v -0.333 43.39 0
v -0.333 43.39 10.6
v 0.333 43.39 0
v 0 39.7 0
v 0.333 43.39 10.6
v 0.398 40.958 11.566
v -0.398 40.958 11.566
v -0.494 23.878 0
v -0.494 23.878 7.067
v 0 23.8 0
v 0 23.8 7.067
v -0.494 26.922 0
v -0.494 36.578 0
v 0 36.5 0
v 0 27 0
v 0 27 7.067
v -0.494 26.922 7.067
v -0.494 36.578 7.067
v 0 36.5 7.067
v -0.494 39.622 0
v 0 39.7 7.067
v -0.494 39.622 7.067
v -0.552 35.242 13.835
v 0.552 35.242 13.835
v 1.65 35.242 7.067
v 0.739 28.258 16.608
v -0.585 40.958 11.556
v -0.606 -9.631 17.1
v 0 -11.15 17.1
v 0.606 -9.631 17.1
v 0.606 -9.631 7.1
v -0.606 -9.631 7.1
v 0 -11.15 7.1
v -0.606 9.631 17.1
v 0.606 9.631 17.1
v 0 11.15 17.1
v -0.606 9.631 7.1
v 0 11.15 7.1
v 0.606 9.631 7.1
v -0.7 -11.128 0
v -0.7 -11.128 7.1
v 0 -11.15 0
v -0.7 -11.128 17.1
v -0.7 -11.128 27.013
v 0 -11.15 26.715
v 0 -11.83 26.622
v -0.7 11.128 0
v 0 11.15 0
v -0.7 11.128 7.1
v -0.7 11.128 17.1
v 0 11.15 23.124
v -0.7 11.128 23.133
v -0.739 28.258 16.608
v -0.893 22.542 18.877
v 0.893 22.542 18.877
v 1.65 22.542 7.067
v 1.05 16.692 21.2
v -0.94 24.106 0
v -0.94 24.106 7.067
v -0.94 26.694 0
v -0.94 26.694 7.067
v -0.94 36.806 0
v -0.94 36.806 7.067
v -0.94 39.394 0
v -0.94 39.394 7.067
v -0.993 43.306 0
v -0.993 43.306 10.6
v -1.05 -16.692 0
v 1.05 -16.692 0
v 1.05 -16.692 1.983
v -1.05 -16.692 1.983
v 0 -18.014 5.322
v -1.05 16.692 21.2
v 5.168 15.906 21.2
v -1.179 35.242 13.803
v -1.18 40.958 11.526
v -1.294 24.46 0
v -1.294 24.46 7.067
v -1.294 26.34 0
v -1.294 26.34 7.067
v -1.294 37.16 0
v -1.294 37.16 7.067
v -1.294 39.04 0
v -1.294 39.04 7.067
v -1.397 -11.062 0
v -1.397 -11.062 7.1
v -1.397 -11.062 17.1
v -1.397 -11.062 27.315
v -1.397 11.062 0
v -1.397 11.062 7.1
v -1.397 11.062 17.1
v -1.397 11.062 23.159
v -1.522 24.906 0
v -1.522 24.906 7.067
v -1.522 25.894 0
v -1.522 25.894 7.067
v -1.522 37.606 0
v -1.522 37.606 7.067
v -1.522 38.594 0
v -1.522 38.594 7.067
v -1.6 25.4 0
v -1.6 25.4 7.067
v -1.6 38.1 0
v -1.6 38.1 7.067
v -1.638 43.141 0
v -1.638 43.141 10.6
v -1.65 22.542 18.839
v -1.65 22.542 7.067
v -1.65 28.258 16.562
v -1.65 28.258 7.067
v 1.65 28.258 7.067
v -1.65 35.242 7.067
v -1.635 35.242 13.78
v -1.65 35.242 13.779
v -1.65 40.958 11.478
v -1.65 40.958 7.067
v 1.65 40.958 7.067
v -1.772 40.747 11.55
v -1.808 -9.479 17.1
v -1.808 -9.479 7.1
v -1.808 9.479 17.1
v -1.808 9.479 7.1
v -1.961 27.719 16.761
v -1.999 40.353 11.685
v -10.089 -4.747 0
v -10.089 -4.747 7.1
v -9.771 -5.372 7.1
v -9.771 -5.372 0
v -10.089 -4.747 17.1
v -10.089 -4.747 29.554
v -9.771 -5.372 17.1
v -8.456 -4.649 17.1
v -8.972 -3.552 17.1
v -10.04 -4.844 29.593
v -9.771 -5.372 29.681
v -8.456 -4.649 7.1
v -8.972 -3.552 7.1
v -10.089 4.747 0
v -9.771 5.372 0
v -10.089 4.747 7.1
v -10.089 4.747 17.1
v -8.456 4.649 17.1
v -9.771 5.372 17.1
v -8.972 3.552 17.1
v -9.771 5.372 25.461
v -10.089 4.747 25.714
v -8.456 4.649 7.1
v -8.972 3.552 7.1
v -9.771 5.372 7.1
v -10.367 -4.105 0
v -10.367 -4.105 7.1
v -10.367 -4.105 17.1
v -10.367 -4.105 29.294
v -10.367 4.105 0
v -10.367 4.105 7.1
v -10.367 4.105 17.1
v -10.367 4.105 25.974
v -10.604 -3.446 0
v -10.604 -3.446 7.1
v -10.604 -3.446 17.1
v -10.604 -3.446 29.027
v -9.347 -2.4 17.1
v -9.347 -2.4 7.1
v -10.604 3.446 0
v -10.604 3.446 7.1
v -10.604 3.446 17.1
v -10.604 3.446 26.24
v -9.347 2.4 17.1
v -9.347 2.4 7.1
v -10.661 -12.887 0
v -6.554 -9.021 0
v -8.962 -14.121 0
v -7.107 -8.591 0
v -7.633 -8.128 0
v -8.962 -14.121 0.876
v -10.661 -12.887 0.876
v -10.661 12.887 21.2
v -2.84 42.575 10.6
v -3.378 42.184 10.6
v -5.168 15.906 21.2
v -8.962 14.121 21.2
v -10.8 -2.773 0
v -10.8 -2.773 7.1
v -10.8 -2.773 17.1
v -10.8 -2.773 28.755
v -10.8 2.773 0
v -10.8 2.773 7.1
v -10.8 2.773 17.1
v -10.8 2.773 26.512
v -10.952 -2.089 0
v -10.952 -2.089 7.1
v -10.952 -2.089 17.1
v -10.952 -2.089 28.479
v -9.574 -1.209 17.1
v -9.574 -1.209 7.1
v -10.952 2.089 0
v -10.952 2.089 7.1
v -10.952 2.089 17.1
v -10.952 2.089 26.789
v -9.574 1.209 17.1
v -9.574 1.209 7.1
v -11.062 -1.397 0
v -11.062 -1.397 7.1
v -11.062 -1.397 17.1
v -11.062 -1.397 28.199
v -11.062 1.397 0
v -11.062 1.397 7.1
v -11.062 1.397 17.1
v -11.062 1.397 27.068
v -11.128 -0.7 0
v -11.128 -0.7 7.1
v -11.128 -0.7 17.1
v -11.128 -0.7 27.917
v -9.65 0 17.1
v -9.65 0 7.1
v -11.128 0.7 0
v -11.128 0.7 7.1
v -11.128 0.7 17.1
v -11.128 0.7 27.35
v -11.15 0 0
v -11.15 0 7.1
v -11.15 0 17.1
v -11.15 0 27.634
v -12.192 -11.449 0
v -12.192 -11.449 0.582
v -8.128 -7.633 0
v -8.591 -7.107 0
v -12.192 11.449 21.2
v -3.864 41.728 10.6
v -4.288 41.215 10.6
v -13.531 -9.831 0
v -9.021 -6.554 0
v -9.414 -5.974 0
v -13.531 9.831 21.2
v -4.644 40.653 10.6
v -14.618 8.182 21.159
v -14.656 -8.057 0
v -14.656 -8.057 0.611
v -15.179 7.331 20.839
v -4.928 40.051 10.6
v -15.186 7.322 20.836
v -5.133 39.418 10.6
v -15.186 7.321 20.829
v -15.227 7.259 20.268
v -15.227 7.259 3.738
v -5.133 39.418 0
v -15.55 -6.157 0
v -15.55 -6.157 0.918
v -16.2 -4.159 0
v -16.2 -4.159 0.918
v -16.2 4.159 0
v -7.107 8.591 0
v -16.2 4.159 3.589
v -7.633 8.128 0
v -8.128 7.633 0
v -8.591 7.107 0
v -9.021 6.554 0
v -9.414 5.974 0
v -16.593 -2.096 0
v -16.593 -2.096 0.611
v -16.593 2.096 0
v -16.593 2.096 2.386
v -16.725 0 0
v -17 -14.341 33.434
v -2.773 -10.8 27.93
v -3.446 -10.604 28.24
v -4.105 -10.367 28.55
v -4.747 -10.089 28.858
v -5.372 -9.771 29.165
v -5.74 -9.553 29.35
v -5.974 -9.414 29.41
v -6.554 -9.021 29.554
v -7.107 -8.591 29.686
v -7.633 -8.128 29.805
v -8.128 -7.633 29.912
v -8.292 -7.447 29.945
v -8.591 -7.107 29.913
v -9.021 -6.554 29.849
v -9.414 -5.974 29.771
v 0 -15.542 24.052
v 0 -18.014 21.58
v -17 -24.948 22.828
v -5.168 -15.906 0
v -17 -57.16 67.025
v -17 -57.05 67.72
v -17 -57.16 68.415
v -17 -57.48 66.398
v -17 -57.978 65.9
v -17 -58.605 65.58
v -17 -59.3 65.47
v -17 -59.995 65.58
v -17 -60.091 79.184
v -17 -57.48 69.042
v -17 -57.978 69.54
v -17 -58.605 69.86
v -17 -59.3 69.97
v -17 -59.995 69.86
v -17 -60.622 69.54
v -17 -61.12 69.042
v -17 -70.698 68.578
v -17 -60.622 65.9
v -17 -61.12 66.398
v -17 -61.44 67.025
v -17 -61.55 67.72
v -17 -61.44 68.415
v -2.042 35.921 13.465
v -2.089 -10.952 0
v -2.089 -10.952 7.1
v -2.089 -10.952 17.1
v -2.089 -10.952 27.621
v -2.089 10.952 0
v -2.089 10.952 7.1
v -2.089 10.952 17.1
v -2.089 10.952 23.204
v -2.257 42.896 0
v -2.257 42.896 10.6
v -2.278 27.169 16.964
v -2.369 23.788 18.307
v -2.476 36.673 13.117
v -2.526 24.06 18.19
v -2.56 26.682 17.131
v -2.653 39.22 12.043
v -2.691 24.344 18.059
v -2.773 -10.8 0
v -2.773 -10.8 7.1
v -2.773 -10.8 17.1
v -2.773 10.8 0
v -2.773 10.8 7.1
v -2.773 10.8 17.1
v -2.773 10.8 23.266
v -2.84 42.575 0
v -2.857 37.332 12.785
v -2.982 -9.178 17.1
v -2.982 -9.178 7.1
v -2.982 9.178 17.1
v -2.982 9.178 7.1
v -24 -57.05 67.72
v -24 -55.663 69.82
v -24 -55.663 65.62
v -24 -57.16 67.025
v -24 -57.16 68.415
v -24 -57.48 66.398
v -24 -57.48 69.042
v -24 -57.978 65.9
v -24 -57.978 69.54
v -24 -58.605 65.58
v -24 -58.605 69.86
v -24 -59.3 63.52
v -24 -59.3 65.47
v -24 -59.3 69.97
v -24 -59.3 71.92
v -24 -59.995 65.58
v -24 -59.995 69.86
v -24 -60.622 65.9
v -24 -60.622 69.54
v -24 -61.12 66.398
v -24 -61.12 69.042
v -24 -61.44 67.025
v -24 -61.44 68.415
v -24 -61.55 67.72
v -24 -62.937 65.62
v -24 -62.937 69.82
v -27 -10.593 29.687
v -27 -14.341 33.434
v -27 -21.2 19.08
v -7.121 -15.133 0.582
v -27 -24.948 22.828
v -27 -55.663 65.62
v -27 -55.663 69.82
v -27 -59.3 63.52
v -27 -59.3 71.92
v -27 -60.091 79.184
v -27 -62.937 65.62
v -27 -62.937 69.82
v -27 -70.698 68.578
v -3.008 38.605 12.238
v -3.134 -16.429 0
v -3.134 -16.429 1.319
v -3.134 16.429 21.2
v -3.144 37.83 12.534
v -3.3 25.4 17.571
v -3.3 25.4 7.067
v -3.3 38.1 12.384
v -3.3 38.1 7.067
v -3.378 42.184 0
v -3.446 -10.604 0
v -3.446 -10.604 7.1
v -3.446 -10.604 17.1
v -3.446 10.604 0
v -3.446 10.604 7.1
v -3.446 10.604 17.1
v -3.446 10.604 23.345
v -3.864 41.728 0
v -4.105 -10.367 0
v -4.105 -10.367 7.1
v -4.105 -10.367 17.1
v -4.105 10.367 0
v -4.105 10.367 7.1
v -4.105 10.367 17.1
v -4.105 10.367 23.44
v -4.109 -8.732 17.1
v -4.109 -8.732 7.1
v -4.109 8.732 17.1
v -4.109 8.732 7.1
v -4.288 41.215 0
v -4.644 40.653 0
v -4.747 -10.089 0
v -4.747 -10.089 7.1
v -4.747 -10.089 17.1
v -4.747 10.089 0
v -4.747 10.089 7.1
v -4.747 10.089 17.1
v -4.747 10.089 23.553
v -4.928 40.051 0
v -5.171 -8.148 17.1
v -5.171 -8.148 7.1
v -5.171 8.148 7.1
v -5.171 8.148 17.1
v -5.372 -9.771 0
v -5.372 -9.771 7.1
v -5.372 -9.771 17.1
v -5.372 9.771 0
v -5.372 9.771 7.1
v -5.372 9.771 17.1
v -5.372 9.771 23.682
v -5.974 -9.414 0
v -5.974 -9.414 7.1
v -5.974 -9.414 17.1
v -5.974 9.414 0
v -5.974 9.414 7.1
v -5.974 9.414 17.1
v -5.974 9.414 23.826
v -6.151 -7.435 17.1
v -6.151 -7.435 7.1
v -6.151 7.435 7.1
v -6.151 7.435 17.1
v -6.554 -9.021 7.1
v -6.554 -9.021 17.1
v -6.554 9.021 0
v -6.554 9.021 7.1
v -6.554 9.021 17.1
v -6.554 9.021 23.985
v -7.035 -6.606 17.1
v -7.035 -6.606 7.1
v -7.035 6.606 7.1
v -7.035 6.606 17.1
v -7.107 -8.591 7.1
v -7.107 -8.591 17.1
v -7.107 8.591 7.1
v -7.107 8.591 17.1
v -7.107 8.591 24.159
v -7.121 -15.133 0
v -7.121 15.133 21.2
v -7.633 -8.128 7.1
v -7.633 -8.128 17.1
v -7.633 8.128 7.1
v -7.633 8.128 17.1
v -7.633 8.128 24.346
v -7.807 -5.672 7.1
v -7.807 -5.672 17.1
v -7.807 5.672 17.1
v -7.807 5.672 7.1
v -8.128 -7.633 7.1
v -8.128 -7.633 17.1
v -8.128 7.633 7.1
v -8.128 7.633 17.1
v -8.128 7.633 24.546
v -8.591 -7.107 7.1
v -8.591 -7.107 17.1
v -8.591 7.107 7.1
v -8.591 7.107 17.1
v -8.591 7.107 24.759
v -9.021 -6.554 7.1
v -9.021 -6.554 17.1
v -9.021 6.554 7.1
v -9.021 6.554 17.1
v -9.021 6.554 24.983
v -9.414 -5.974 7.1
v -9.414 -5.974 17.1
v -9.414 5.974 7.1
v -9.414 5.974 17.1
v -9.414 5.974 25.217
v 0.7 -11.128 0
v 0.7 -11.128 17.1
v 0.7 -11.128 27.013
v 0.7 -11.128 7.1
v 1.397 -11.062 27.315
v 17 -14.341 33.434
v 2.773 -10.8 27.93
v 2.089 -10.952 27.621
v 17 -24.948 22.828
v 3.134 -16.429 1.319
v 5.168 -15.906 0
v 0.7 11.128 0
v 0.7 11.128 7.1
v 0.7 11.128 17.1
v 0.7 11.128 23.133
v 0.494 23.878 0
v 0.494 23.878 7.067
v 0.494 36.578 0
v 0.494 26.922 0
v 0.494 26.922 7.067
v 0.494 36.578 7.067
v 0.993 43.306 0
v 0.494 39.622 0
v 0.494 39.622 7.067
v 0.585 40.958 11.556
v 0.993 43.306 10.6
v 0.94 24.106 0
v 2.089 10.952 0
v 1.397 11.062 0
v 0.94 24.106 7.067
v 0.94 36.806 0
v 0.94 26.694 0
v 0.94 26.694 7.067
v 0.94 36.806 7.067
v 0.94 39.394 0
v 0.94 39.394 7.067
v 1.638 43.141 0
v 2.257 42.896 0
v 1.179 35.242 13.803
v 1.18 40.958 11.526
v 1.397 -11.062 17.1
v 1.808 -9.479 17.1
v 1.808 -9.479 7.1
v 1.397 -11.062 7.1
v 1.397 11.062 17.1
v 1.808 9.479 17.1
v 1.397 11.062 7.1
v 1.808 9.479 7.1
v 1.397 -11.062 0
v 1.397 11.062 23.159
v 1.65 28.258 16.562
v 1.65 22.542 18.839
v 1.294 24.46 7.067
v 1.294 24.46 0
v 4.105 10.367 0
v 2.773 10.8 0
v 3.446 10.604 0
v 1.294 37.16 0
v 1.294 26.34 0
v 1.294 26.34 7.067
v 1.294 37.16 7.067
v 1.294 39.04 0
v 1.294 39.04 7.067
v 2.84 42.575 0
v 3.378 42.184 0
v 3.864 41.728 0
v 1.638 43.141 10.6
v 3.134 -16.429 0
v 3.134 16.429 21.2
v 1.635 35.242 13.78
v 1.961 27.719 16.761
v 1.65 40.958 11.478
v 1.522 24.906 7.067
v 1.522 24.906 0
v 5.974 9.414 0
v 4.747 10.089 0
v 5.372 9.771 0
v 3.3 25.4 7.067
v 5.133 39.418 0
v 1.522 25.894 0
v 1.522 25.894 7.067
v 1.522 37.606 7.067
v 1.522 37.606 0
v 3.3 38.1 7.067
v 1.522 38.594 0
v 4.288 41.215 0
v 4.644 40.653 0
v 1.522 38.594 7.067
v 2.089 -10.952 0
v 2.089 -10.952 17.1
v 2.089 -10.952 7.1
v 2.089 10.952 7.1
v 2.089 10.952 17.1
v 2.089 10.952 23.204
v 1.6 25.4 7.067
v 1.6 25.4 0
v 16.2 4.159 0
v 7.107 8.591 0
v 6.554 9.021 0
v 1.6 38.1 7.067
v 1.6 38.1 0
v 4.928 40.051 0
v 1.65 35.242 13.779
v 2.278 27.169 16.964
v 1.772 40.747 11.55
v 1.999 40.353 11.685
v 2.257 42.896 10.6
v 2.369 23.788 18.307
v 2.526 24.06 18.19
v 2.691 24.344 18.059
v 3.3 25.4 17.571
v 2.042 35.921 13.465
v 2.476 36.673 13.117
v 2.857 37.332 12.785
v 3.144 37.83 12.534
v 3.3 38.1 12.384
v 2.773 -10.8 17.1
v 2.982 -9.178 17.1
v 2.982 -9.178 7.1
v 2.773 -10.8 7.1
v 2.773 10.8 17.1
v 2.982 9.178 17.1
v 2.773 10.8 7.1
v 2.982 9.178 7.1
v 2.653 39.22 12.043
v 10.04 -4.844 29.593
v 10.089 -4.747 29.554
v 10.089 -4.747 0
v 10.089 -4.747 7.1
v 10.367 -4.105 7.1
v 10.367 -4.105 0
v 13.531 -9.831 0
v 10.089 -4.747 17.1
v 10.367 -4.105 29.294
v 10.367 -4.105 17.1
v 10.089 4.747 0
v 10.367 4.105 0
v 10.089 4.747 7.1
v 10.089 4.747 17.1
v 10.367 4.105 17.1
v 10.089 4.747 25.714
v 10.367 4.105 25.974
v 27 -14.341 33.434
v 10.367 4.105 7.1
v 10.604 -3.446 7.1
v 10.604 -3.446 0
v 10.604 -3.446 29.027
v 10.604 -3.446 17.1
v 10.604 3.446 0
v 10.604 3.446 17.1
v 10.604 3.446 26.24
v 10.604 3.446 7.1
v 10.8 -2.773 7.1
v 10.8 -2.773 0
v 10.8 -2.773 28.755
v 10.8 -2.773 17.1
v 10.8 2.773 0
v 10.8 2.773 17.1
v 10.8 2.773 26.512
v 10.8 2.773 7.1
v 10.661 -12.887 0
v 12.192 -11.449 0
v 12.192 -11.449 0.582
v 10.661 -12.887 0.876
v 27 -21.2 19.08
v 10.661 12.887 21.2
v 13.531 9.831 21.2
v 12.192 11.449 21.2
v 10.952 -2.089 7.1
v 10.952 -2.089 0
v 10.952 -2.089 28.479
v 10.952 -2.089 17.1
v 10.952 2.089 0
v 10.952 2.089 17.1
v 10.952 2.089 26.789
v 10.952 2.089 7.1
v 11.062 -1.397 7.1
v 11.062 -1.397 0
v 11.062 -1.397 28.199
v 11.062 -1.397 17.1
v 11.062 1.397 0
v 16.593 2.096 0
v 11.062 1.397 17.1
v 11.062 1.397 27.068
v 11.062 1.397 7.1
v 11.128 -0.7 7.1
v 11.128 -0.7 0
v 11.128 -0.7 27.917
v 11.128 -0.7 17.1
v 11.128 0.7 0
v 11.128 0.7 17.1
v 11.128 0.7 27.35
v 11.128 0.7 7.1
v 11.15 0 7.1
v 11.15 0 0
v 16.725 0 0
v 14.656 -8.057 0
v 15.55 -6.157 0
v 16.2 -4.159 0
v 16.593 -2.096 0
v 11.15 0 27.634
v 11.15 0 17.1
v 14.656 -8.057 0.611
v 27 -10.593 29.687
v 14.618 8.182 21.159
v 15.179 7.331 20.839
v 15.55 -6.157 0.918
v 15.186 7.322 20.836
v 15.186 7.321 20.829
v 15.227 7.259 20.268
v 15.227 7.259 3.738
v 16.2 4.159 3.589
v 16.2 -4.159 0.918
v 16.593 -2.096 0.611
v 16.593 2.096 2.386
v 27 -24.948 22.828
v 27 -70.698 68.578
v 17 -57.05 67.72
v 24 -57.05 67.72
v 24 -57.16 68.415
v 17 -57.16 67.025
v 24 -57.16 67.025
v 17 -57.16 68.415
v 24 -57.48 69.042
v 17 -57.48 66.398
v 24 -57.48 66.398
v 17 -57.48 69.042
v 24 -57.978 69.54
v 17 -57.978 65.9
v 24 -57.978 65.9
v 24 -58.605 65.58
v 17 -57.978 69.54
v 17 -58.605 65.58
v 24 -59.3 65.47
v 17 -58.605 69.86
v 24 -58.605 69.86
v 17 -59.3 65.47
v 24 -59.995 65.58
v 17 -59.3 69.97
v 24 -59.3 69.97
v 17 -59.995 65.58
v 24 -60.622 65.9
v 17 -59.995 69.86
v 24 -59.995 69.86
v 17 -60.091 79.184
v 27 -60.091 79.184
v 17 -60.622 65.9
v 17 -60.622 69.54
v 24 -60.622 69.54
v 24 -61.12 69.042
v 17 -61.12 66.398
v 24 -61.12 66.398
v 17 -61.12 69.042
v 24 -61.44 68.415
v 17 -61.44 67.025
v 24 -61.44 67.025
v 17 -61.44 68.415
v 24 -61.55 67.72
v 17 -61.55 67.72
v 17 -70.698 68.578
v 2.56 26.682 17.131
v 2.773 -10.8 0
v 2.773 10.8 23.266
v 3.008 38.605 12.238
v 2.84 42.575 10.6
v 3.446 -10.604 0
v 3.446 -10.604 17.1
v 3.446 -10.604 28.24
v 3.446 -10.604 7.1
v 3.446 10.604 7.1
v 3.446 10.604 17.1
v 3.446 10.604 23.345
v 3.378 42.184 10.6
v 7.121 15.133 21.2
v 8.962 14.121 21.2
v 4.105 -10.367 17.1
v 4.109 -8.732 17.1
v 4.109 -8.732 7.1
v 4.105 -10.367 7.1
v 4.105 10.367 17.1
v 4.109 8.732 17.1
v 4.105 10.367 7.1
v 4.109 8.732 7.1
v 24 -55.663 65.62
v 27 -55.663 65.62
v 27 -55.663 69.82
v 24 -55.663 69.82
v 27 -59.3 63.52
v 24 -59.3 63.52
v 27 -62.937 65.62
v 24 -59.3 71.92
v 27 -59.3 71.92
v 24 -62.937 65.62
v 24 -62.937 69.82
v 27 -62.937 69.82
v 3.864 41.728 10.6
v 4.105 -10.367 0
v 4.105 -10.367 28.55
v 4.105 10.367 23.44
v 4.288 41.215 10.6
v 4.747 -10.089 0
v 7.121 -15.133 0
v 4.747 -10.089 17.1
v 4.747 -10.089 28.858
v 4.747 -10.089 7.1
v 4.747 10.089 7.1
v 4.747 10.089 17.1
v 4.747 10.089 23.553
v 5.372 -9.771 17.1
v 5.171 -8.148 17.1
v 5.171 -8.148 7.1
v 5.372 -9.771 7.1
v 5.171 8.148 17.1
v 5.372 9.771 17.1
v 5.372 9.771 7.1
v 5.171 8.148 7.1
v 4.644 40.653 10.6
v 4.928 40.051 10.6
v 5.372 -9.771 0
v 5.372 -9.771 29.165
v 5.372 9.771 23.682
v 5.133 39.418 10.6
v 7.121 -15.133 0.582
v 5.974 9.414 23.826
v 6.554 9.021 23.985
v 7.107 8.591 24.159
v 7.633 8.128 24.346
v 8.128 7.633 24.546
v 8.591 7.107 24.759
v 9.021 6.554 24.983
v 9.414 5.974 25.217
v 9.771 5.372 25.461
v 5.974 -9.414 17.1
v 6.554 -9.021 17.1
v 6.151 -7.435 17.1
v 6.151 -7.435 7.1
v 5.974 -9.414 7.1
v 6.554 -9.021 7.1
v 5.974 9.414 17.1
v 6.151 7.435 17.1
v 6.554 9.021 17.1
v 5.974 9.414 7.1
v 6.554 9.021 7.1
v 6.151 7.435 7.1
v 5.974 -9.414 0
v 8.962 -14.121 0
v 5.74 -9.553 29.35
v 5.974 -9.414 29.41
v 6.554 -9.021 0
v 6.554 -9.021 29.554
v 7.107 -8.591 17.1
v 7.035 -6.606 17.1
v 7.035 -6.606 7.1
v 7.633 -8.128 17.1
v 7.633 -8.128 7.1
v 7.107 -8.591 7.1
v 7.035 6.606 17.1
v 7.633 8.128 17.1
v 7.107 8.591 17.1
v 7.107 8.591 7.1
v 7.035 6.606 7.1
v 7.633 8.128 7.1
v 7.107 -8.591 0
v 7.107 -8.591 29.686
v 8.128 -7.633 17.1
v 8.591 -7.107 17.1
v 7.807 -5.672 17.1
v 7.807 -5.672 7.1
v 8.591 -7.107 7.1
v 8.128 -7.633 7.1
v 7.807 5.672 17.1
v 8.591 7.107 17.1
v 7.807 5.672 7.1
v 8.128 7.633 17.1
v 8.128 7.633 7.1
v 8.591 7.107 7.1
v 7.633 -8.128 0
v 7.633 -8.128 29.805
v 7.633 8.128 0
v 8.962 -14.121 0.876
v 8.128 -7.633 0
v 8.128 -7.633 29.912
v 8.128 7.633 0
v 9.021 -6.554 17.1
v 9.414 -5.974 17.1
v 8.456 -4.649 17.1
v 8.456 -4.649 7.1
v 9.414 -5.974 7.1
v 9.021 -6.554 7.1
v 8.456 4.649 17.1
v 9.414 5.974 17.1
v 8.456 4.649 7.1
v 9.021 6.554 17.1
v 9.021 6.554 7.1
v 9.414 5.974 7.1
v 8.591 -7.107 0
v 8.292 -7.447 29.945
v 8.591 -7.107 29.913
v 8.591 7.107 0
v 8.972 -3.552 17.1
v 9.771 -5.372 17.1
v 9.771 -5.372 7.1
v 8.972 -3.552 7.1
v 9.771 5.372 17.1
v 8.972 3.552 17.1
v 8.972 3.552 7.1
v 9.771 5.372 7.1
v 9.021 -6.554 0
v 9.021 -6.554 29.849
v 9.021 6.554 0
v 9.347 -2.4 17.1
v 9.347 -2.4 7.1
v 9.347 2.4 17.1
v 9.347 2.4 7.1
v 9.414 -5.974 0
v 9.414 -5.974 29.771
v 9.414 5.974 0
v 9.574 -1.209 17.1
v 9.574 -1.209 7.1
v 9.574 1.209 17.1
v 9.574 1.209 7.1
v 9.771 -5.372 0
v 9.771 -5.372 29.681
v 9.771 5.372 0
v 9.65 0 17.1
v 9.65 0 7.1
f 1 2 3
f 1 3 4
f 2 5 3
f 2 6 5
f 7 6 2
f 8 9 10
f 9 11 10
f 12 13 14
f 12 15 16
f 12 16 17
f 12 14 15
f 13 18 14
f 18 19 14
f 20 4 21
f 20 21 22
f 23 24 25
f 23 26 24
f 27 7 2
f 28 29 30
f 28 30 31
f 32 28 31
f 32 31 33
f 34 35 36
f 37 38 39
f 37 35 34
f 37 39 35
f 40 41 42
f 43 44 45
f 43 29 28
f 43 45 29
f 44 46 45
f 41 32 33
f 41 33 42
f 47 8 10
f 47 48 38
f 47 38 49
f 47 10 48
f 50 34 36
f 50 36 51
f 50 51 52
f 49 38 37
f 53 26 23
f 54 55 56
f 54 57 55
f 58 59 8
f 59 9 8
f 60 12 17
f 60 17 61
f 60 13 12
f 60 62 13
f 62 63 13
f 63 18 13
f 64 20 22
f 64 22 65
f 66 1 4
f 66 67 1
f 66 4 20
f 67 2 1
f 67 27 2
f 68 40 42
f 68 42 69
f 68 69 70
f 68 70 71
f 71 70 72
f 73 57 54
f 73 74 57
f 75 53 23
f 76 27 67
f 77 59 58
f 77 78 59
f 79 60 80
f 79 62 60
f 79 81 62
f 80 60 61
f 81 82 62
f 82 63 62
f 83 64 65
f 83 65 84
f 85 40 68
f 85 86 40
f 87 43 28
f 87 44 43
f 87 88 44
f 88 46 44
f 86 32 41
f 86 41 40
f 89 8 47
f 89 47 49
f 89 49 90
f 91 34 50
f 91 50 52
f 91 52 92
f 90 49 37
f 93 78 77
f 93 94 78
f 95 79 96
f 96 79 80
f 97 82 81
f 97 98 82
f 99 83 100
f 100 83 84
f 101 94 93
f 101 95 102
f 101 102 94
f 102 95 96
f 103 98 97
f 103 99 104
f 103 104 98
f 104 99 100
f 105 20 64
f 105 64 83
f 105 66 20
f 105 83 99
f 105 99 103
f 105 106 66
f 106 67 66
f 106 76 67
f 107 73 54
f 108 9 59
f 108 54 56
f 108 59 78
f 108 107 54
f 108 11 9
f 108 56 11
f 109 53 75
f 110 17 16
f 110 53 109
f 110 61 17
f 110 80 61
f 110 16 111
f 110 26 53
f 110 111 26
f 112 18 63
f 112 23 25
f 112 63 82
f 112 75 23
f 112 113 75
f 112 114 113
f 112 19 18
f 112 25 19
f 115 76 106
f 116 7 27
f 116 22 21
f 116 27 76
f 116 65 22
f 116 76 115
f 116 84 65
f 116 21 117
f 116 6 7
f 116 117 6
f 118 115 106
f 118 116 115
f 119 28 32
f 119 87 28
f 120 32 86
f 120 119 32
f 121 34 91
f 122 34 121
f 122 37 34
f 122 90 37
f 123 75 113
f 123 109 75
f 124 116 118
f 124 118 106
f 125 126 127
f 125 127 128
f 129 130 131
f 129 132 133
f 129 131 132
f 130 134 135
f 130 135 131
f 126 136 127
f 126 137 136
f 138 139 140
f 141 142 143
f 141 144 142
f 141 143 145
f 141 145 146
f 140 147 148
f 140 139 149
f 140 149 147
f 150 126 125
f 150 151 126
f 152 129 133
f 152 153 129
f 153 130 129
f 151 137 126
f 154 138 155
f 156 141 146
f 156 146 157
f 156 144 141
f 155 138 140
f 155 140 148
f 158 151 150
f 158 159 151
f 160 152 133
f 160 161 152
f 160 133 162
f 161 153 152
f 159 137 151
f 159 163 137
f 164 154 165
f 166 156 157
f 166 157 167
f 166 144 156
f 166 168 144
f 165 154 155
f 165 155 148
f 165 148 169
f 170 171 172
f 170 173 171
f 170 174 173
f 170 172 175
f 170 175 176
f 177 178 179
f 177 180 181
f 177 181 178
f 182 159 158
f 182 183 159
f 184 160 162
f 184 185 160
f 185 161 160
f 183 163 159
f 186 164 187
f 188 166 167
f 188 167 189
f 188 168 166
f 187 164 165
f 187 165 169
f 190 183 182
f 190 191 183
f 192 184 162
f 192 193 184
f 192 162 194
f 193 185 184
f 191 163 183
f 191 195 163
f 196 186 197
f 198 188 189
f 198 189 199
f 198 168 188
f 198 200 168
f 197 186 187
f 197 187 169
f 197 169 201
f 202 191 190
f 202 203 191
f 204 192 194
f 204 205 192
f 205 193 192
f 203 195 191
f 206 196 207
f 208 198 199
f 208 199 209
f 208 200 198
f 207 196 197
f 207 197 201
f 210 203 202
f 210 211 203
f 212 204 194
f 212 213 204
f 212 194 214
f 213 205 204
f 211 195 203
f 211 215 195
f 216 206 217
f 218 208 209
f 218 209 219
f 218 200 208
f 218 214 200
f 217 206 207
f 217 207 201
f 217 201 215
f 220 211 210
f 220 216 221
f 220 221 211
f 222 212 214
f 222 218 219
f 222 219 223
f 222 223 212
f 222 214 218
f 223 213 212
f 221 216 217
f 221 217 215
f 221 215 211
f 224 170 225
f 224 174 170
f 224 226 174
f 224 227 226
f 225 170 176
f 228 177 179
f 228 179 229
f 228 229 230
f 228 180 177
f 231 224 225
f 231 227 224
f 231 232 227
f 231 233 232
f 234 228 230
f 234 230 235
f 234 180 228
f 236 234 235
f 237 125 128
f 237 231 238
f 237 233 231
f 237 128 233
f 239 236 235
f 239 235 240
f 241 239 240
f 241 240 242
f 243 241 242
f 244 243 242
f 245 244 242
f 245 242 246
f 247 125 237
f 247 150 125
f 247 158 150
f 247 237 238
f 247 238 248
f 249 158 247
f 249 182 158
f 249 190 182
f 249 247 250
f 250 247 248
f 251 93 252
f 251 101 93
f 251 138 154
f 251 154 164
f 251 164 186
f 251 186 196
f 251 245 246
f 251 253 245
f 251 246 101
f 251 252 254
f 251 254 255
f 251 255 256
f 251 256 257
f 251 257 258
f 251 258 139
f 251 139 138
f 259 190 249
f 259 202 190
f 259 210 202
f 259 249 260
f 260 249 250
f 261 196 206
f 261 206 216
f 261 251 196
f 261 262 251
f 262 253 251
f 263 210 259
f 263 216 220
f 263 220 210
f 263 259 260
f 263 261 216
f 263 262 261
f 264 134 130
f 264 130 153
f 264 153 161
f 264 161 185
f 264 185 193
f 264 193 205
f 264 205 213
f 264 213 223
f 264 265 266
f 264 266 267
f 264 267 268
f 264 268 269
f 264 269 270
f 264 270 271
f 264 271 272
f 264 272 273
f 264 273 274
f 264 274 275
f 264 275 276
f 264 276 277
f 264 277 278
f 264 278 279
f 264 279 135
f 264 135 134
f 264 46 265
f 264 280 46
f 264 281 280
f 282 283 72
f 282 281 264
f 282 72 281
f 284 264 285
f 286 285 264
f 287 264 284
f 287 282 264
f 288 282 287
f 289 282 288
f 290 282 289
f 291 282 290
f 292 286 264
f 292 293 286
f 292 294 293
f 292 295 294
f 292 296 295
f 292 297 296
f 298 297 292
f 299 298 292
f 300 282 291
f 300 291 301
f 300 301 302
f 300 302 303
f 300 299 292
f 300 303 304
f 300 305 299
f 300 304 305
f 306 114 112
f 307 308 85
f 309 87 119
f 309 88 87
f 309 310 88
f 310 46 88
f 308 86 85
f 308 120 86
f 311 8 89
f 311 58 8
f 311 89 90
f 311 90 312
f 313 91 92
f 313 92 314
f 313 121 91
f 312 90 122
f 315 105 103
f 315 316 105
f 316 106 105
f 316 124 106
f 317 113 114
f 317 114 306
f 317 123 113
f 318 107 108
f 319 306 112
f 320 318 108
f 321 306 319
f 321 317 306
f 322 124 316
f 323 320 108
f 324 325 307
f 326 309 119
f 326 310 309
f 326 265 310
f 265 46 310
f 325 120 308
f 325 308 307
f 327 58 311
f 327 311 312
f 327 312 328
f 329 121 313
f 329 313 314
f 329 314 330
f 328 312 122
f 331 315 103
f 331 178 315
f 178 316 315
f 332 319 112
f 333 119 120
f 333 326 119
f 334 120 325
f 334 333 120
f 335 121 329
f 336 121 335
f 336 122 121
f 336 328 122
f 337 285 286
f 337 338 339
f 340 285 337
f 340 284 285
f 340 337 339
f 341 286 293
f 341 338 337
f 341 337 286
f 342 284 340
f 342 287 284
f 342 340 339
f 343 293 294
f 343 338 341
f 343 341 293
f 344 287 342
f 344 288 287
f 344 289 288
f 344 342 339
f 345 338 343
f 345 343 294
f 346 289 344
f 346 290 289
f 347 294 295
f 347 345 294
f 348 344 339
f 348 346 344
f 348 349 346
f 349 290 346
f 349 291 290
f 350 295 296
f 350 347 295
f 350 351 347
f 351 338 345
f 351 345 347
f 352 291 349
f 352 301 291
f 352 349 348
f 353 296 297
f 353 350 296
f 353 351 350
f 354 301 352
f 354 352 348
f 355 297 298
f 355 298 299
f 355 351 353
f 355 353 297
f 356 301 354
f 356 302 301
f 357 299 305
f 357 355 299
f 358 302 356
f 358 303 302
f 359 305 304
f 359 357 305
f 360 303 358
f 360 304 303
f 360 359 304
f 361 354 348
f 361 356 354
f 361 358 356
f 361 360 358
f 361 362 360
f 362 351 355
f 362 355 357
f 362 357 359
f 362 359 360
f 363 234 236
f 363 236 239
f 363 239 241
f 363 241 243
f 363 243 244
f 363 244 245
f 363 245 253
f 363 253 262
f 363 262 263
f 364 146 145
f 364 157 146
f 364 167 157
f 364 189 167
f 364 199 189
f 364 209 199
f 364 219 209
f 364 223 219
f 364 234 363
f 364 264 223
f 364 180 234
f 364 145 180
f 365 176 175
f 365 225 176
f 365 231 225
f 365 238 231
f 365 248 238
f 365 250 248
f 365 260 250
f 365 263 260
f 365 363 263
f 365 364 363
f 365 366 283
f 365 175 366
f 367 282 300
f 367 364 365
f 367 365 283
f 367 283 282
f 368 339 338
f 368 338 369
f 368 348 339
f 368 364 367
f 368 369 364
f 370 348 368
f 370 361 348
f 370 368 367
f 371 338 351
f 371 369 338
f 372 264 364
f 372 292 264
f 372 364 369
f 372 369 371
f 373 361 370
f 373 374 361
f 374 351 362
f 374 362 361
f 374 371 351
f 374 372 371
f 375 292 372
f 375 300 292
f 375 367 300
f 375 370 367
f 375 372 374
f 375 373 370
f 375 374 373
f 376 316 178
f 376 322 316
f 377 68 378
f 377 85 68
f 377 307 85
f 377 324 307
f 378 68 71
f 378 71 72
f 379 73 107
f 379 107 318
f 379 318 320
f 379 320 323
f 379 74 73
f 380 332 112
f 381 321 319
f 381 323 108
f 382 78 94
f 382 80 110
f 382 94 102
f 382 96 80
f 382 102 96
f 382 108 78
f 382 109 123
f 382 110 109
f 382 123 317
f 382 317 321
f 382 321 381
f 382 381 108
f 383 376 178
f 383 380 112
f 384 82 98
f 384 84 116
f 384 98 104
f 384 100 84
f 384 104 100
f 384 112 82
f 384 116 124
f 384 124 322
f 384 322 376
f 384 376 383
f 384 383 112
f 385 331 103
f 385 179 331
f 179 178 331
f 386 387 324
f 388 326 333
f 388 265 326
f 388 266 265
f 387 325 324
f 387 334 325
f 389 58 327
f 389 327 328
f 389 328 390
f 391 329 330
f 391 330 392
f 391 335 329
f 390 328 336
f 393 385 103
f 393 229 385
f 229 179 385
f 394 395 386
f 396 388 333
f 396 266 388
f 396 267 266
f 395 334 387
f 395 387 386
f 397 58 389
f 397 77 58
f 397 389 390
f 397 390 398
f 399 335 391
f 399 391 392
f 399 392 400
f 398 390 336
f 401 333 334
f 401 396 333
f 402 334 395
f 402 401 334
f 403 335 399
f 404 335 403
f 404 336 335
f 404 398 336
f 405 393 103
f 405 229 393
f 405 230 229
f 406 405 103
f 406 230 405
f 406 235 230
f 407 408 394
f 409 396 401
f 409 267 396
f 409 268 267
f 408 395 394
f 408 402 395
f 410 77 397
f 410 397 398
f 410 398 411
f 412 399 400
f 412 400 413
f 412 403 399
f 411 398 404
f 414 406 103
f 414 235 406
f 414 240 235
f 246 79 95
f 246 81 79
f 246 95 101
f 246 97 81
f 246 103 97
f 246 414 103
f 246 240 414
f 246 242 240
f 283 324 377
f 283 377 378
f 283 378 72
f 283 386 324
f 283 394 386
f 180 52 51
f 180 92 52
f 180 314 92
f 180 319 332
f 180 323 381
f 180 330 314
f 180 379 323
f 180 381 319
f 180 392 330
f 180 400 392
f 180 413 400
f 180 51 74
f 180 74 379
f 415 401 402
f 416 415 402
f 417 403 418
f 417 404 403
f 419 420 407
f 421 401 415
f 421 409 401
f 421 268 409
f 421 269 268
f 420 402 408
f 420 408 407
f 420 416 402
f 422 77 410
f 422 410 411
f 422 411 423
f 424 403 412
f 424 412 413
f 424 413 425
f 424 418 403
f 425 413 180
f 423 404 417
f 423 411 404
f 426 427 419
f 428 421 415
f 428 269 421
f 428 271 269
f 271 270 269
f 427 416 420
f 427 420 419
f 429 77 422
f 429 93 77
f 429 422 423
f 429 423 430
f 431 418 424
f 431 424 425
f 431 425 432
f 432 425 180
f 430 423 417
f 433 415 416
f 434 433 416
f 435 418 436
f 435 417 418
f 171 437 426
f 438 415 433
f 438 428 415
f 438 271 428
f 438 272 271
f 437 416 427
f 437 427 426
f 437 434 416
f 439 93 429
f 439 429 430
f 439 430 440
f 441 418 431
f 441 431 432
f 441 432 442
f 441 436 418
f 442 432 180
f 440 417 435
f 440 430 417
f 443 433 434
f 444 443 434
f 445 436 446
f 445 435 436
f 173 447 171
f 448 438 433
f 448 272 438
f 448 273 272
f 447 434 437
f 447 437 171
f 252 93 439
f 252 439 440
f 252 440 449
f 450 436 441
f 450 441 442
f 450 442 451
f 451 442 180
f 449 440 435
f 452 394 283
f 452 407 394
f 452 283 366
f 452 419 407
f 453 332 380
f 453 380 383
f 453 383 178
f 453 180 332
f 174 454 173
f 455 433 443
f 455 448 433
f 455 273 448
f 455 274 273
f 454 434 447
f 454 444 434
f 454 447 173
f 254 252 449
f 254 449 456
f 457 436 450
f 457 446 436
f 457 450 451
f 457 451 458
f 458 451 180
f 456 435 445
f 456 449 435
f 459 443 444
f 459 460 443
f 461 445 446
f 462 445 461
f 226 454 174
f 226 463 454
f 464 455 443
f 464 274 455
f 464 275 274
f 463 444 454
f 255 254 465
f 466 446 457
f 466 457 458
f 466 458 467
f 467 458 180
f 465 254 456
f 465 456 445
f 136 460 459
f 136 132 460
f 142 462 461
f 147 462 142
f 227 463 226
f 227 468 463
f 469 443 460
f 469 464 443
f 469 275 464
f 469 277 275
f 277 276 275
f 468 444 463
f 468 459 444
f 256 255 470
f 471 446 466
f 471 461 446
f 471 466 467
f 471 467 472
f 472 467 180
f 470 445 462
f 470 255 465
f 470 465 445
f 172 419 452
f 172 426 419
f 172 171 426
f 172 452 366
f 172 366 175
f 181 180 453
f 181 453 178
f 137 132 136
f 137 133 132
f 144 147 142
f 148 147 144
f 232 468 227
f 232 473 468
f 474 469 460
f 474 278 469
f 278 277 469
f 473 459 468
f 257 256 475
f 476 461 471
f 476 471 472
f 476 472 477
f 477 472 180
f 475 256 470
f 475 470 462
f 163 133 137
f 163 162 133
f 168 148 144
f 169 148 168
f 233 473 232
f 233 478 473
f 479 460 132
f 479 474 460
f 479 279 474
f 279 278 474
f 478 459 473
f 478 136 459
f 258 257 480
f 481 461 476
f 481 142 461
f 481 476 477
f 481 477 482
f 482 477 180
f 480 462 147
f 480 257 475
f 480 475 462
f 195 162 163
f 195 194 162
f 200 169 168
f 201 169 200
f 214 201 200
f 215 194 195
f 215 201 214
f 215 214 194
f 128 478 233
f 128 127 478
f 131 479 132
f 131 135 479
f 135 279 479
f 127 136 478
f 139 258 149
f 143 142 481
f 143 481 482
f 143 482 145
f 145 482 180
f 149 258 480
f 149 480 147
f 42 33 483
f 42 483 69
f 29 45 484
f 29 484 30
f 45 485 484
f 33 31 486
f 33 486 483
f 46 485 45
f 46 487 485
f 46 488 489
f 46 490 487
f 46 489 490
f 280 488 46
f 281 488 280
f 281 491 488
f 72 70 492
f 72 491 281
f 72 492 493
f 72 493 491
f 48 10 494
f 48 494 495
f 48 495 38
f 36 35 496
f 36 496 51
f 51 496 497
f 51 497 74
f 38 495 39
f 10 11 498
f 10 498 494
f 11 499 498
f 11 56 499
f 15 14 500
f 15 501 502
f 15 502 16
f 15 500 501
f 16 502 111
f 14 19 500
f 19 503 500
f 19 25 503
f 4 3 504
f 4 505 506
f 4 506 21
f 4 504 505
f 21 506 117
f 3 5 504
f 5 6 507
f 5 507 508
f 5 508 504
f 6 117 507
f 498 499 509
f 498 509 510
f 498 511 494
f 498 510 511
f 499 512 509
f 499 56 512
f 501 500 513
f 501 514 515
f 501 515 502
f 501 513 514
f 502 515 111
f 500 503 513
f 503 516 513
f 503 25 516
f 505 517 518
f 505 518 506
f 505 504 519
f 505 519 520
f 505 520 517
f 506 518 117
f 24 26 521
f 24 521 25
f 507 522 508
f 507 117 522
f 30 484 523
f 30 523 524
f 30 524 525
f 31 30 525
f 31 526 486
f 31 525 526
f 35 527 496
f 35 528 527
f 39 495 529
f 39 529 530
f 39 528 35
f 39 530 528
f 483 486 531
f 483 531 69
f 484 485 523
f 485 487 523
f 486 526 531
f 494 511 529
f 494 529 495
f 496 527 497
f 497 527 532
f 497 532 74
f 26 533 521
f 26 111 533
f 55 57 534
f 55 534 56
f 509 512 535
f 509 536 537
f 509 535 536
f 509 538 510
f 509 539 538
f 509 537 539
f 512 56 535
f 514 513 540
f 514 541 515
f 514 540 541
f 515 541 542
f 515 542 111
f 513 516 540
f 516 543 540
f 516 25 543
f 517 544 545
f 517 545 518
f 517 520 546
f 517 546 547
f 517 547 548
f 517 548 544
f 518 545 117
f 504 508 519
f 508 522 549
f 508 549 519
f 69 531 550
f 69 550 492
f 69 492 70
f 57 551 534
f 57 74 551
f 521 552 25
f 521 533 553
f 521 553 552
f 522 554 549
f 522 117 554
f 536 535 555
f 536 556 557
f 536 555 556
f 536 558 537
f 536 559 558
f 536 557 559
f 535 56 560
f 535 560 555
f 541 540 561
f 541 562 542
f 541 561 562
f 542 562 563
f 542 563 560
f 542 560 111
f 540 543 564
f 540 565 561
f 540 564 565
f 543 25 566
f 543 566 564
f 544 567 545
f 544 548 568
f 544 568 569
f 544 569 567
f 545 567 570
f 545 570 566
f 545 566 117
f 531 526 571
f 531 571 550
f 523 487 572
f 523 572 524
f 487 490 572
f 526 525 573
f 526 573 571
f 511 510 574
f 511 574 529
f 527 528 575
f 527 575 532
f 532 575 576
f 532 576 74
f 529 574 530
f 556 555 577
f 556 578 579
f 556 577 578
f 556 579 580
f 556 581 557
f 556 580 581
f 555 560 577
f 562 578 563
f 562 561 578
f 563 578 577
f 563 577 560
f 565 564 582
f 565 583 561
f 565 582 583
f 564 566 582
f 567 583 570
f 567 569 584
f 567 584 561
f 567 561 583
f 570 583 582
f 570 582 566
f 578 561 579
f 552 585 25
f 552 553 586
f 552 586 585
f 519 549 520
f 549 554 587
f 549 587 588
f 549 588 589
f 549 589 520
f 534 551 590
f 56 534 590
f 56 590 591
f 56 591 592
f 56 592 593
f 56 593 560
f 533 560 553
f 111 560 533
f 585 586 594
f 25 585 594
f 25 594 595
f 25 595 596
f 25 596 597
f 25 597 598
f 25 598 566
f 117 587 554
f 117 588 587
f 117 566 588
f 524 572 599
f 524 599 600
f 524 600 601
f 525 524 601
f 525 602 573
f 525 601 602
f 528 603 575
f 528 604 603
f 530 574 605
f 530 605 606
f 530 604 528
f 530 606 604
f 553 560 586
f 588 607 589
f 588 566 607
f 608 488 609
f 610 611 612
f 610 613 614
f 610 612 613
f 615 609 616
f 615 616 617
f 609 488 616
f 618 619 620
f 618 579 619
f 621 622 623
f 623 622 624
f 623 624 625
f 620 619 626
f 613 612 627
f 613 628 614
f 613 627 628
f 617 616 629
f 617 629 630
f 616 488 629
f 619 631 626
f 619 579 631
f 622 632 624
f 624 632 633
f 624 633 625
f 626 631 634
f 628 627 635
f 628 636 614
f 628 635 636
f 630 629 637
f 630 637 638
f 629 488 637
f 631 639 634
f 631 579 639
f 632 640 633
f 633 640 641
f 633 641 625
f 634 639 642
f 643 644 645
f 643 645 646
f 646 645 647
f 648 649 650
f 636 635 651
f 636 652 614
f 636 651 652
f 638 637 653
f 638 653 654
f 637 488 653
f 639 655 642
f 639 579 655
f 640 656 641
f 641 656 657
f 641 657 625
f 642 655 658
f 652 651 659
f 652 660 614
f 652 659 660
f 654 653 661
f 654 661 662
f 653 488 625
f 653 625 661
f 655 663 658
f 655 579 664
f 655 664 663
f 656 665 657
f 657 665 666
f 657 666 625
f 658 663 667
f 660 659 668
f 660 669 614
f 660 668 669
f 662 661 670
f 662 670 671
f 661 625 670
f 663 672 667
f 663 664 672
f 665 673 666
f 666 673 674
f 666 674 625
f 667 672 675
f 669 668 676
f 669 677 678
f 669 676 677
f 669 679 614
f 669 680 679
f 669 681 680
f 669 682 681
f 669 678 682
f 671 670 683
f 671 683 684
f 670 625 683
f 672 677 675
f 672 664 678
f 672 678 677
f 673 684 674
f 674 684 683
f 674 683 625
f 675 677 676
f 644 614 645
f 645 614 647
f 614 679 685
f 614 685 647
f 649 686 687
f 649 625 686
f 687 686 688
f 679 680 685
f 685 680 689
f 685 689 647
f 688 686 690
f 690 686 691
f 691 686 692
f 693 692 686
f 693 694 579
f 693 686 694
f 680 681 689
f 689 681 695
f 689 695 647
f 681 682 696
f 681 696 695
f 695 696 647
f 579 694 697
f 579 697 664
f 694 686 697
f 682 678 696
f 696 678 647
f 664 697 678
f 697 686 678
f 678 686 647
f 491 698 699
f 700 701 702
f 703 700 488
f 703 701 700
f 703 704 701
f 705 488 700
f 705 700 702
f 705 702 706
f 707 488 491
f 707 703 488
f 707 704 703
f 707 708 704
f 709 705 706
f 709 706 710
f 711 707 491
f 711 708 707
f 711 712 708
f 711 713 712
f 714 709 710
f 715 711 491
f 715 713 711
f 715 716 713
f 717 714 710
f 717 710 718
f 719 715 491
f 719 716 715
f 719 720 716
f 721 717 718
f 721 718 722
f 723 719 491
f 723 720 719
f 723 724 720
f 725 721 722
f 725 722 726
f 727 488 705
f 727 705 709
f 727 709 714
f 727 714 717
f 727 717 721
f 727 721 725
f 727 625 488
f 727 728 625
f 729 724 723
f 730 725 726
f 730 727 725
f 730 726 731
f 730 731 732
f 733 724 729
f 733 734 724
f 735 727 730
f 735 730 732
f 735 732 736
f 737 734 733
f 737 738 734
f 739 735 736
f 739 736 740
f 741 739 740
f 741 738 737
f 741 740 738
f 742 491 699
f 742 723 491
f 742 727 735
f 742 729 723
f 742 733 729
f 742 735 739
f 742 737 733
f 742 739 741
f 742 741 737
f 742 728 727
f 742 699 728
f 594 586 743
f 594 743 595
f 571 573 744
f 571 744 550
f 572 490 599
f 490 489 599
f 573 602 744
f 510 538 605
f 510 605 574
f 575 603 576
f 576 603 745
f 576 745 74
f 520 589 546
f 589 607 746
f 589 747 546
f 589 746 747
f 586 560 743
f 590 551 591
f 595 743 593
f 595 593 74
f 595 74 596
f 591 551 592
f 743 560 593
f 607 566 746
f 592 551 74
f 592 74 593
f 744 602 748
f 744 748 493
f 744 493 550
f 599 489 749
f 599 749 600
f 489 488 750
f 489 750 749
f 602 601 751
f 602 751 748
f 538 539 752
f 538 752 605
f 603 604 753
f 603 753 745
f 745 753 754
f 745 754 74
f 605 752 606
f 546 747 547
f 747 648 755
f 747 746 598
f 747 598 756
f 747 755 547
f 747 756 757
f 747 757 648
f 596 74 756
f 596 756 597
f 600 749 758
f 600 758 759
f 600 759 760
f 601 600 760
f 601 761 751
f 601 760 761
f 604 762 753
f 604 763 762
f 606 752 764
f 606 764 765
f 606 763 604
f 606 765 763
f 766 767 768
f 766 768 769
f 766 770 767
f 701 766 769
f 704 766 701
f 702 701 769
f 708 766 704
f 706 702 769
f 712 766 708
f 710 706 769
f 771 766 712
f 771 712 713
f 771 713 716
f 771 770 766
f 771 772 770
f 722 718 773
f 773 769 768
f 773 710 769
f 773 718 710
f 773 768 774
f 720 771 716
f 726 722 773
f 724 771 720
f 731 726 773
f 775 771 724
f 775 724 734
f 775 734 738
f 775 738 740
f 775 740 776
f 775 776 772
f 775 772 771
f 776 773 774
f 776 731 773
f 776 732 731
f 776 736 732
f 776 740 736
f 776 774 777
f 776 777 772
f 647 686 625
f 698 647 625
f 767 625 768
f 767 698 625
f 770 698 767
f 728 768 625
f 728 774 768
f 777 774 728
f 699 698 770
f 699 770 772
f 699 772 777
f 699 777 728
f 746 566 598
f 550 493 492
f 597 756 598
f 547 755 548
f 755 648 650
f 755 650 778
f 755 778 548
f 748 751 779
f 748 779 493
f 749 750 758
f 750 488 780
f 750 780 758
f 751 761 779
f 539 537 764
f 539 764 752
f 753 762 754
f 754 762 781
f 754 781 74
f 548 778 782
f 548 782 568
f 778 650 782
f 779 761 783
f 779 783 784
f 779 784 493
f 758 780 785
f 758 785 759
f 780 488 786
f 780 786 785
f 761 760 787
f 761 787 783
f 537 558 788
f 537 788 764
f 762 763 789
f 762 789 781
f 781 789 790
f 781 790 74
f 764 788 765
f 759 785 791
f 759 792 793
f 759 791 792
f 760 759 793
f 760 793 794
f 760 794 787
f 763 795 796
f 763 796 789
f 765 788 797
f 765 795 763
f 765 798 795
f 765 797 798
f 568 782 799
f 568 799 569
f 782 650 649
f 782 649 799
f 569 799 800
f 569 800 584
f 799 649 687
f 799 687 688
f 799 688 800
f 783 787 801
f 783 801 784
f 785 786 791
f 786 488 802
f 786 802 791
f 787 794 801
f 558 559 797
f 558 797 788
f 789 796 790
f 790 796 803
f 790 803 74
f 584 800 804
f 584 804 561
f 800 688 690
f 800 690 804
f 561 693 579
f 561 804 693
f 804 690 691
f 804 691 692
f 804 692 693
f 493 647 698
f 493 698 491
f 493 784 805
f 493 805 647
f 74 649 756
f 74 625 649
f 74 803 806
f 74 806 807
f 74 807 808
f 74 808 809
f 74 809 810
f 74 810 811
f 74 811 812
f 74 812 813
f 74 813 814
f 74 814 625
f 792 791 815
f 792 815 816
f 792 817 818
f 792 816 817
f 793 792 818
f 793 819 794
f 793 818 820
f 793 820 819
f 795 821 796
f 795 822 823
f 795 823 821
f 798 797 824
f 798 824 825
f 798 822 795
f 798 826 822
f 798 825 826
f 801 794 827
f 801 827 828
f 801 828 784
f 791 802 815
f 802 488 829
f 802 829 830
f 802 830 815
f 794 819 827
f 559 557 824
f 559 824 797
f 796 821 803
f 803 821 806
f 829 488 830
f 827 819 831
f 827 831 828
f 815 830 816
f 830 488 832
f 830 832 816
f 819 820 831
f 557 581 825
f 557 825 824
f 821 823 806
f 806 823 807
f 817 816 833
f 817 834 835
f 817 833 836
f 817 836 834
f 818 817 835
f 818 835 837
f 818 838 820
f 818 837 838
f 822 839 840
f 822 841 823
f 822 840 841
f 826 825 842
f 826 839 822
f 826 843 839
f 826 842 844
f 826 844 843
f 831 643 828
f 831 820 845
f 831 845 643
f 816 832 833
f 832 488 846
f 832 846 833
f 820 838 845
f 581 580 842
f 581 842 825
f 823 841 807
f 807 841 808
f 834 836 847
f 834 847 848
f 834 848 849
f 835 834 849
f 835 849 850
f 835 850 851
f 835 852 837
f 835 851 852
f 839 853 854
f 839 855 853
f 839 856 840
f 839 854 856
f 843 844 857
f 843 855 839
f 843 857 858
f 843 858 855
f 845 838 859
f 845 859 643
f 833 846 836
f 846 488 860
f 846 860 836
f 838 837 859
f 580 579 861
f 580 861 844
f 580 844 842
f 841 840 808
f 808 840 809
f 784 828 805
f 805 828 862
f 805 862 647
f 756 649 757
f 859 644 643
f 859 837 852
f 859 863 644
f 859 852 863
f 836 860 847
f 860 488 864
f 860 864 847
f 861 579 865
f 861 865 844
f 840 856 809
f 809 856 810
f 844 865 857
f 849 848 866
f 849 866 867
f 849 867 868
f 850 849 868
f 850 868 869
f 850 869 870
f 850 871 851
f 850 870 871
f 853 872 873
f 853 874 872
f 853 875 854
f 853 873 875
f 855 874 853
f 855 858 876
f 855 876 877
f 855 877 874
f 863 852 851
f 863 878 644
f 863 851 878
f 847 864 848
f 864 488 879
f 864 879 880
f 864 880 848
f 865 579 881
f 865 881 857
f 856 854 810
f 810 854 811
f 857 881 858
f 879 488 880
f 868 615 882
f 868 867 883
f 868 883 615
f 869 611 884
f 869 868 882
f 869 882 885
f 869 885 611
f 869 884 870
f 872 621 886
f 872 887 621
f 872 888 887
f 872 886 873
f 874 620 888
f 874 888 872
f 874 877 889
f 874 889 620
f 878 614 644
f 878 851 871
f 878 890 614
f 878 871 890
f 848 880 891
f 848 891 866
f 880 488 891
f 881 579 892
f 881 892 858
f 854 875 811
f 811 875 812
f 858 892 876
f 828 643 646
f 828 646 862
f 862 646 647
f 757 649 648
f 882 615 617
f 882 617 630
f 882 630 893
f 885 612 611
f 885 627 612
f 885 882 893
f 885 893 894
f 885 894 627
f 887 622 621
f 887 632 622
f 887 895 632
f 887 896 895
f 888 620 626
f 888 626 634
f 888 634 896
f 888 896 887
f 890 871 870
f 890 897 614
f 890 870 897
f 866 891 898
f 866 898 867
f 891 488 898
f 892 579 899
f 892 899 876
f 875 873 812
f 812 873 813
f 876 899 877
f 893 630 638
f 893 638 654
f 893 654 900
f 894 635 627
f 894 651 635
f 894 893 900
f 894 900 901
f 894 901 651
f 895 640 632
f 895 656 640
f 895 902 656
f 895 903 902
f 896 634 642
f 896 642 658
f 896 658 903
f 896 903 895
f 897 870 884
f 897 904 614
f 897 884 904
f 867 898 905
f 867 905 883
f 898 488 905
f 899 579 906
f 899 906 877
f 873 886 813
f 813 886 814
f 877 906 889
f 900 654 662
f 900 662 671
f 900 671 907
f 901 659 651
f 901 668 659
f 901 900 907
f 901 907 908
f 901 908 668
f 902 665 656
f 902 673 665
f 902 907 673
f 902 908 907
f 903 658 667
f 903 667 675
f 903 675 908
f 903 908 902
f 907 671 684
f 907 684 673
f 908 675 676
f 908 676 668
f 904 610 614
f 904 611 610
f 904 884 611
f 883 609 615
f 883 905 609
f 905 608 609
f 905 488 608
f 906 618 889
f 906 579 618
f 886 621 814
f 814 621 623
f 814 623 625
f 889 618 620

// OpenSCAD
// file: ../888_2002.scad
//improving rendering speed.
draft = true;   // sets rendering quality to draft.
$fs = draft ? 5 : 0.5;
$fa = 10;



module fork_half(height, wheel_width, fork_angle)
{


    hull() {
        cylinder(h = height, d = 608_bearing_outer_diameter * 1.5, $fn = draft ? 10 :50 );
        translate([wheel_width/2, - 2*tube_for_undercarriage_outer_diameter, 1.8 * tube_for_undercarriage_outer_diameter])
            rotate([fork_angle,0,0])
                cube([10,15,height/4]);
    }

    translate([wheel_width/2, - 2*tube_for_undercarriage_outer_diameter, 1.8 * tube_for_undercarriage_outer_diameter])
        rotate([fork_angle,0,0])
            cube([10,15,70]);

}


module 888_2002(draft){

width = 2*tube_for_undercarriage_outer_diameter;
depth = tube_for_undercarriage_outer_diameter + M3_screw_diameter + 2*coupling_wall_thickness_undercarriage + thickness_between_tubes_undercarriage;
height = width;


wheel_width = 34;
wheel_diameter = 110;
fork_angle = 45;


    difference(){

        union(){


            hull() {
                cylinder(h = height, d = 608_bearing_outer_diameter * 1.5, $fn = draft ? 10 :50 );
                translate([0,1.5*main_tube_outer_diameter,0])
                    cylinder(h = height/2, d = tube_for_undercarriage_outer_diameter, $fn = draft ? 10 :50 );
            }

            /// vidlice pro kolo
            fork_half(height, wheel_width, fork_angle);
            mirror([1,0,0])
                fork_half(height, wheel_width, fork_angle);
        }

    	//vertical screw
        translate ([0,0,- global_clearance/2])
            cylinder(h = 2*height, d = 608_bearing_outer_diameter - 3, $fn = draft ? 20 : 50);

        cylinder (h= 608_bearing_thickness, d = 608_bearing_outer_diameter, $fn = draft ? 50 : 100);
        translate([0,0,10 + 608_bearing_thickness])
            cylinder (h= height, d = 608_bearing_outer_diameter, $fn = draft ? 50 : 100);



        //servo screw
        translate([0,main_tube_outer_diameter,0])
            cylinder(h = height, r = M3_screw_diameter/2, $fn = draft ? 10 :20 );

        translate([0,1.5*main_tube_outer_diameter,0])
            cylinder(h = height, r = M3_screw_diameter/2, $fn = draft ? 10 :20 );

        //servo screw nut
        translate([0, main_tube_outer_diameter, height/3])
            cylinder (h = height, r = M3_nut_diameter/2, $fn = 6);

        translate([0, 1.5* main_tube_outer_diameter, height/3])
            cylinder (h = height, r = M3_nut_diameter/2, $fn = 6);


        // wheel screw
        translate([-wheel_width, -wheel_diameter/2 - tube_for_undercarriage_outer_diameter/2 + 1, wheel_diameter/2 + 1.2*tube_for_undercarriage_outer_diameter])
            rotate([0,90,0])
                cylinder(h = 3 * wheel_width, d = M4_screw_diameter, $fn = draft ? 10 :20 );

        translate([wheel_width/2 + 7, -wheel_diameter/2 - tube_for_undercarriage_outer_diameter/2 + 1, wheel_diameter/2 + 1.2*tube_for_undercarriage_outer_diameter])
            rotate([0,90,0])
                cylinder(h = M4_nut_height, d = M4_nut_diameter, $fn = 6);

        translate([-wheel_width/2 - 7, -wheel_diameter/2 - tube_for_undercarriage_outer_diameter/2 + 1, wheel_diameter/2 + 1.2*tube_for_undercarriage_outer_diameter])
            rotate([0,-90,0])
                cylinder(h = M4_nut_height, d = M4_nut_diameter, $fn = 6);

    }
}

module 888_2008(draft){

width = 2*tube_for_undercarriage_outer_diameter;
depth = tube_for_undercarriage_outer_diameter + M3_screw_diameter + 2*coupling_wall_thickness_undercarriage + thickness_between_tubes_undercarriage;
height = width;


wheel_width = 34;
wheel_diameter = 110;
fork_angle = 0;


    difference(){

        union(){


            hull() {
                #cylinder(h = height, d = 608_bearing_outer_diameter * 1.5, $fn = draft ? 10 :50 );
                translate([0,1.5*main_tube_outer_diameter,0])
                    cylinder(h = height/2, d = tube_for_undercarriage_outer_diameter, $fn = draft ? 10 :50 );
            }

            /// vidlice pro kolo
            %fork_half(height, wheel_width, fork_angle);
            mirror([1,0,0])
                fork_half(height, wheel_width, fork_angle);
        }

        //vertical screw
        translate ([0,0,- global_clearance/2])
            cylinder(h = 2*height, d = 608_bearing_outer_diameter - 3, $fn = draft ? 20 : 50);

        cylinder (h= 608_bearing_thickness, d = 608_bearing_outer_diameter, $fn = draft ? 50 : 100);
        translate([0,0,10 + 608_bearing_thickness])
            cylinder (h= height, d = 608_bearing_outer_diameter, $fn = draft ? 50 : 100);



        //servo screw
        translate([0,main_tube_outer_diameter,0])
            cylinder(h = height, r = M3_screw_diameter/2, $fn = draft ? 10 :20 );

        translate([0,1.5*main_tube_outer_diameter,0])
            cylinder(h = height, r = M3_screw_diameter/2, $fn = draft ? 10 :20 );

        //servo screw nut
        translate([0, main_tube_outer_diameter, height/3])
            cylinder (h = height, r = M3_nut_diameter/2, $fn = 6);

        translate([0, 1.5* main_tube_outer_diameter, height/3])
            cylinder (h = height, r = M3_nut_diameter/2, $fn = 6);


        // wheel screw
        translate([-wheel_width, -wheel_diameter/2 - tube_for_undercarriage_outer_diameter/2 + 1, wheel_diameter/2 + 1.2*tube_for_undercarriage_outer_diameter])
            rotate([0,90,0])
                cylinder(h = 3 * wheel_width, d = M4_screw_diameter, $fn = draft ? 10 :20 );

        translate([wheel_width/2 + 7, -wheel_diameter/2 - tube_for_undercarriage_outer_diameter/2 + 1, wheel_diameter/2 + 1.2*tube_for_undercarriage_outer_diameter])
            rotate([0,90,0])
                cylinder(h = M4_nut_height, d = M4_nut_diameter, $fn = 6);

        translate([-wheel_width/2 - 7, -wheel_diameter/2 - tube_for_undercarriage_outer_diameter/2 + 1, wheel_diameter/2 + 1.2*tube_for_undercarriage_outer_diameter])
            rotate([0,-90,0])
                cylinder(h = M4_nut_height, d = M4_nut_diameter, $fn = 6);

    }
}



888_2002(draft);

include <../parameters.scad>
// main file
include <../../parameters.scad>

use <../888_2002.scad>

        888_2002(draft=false);
